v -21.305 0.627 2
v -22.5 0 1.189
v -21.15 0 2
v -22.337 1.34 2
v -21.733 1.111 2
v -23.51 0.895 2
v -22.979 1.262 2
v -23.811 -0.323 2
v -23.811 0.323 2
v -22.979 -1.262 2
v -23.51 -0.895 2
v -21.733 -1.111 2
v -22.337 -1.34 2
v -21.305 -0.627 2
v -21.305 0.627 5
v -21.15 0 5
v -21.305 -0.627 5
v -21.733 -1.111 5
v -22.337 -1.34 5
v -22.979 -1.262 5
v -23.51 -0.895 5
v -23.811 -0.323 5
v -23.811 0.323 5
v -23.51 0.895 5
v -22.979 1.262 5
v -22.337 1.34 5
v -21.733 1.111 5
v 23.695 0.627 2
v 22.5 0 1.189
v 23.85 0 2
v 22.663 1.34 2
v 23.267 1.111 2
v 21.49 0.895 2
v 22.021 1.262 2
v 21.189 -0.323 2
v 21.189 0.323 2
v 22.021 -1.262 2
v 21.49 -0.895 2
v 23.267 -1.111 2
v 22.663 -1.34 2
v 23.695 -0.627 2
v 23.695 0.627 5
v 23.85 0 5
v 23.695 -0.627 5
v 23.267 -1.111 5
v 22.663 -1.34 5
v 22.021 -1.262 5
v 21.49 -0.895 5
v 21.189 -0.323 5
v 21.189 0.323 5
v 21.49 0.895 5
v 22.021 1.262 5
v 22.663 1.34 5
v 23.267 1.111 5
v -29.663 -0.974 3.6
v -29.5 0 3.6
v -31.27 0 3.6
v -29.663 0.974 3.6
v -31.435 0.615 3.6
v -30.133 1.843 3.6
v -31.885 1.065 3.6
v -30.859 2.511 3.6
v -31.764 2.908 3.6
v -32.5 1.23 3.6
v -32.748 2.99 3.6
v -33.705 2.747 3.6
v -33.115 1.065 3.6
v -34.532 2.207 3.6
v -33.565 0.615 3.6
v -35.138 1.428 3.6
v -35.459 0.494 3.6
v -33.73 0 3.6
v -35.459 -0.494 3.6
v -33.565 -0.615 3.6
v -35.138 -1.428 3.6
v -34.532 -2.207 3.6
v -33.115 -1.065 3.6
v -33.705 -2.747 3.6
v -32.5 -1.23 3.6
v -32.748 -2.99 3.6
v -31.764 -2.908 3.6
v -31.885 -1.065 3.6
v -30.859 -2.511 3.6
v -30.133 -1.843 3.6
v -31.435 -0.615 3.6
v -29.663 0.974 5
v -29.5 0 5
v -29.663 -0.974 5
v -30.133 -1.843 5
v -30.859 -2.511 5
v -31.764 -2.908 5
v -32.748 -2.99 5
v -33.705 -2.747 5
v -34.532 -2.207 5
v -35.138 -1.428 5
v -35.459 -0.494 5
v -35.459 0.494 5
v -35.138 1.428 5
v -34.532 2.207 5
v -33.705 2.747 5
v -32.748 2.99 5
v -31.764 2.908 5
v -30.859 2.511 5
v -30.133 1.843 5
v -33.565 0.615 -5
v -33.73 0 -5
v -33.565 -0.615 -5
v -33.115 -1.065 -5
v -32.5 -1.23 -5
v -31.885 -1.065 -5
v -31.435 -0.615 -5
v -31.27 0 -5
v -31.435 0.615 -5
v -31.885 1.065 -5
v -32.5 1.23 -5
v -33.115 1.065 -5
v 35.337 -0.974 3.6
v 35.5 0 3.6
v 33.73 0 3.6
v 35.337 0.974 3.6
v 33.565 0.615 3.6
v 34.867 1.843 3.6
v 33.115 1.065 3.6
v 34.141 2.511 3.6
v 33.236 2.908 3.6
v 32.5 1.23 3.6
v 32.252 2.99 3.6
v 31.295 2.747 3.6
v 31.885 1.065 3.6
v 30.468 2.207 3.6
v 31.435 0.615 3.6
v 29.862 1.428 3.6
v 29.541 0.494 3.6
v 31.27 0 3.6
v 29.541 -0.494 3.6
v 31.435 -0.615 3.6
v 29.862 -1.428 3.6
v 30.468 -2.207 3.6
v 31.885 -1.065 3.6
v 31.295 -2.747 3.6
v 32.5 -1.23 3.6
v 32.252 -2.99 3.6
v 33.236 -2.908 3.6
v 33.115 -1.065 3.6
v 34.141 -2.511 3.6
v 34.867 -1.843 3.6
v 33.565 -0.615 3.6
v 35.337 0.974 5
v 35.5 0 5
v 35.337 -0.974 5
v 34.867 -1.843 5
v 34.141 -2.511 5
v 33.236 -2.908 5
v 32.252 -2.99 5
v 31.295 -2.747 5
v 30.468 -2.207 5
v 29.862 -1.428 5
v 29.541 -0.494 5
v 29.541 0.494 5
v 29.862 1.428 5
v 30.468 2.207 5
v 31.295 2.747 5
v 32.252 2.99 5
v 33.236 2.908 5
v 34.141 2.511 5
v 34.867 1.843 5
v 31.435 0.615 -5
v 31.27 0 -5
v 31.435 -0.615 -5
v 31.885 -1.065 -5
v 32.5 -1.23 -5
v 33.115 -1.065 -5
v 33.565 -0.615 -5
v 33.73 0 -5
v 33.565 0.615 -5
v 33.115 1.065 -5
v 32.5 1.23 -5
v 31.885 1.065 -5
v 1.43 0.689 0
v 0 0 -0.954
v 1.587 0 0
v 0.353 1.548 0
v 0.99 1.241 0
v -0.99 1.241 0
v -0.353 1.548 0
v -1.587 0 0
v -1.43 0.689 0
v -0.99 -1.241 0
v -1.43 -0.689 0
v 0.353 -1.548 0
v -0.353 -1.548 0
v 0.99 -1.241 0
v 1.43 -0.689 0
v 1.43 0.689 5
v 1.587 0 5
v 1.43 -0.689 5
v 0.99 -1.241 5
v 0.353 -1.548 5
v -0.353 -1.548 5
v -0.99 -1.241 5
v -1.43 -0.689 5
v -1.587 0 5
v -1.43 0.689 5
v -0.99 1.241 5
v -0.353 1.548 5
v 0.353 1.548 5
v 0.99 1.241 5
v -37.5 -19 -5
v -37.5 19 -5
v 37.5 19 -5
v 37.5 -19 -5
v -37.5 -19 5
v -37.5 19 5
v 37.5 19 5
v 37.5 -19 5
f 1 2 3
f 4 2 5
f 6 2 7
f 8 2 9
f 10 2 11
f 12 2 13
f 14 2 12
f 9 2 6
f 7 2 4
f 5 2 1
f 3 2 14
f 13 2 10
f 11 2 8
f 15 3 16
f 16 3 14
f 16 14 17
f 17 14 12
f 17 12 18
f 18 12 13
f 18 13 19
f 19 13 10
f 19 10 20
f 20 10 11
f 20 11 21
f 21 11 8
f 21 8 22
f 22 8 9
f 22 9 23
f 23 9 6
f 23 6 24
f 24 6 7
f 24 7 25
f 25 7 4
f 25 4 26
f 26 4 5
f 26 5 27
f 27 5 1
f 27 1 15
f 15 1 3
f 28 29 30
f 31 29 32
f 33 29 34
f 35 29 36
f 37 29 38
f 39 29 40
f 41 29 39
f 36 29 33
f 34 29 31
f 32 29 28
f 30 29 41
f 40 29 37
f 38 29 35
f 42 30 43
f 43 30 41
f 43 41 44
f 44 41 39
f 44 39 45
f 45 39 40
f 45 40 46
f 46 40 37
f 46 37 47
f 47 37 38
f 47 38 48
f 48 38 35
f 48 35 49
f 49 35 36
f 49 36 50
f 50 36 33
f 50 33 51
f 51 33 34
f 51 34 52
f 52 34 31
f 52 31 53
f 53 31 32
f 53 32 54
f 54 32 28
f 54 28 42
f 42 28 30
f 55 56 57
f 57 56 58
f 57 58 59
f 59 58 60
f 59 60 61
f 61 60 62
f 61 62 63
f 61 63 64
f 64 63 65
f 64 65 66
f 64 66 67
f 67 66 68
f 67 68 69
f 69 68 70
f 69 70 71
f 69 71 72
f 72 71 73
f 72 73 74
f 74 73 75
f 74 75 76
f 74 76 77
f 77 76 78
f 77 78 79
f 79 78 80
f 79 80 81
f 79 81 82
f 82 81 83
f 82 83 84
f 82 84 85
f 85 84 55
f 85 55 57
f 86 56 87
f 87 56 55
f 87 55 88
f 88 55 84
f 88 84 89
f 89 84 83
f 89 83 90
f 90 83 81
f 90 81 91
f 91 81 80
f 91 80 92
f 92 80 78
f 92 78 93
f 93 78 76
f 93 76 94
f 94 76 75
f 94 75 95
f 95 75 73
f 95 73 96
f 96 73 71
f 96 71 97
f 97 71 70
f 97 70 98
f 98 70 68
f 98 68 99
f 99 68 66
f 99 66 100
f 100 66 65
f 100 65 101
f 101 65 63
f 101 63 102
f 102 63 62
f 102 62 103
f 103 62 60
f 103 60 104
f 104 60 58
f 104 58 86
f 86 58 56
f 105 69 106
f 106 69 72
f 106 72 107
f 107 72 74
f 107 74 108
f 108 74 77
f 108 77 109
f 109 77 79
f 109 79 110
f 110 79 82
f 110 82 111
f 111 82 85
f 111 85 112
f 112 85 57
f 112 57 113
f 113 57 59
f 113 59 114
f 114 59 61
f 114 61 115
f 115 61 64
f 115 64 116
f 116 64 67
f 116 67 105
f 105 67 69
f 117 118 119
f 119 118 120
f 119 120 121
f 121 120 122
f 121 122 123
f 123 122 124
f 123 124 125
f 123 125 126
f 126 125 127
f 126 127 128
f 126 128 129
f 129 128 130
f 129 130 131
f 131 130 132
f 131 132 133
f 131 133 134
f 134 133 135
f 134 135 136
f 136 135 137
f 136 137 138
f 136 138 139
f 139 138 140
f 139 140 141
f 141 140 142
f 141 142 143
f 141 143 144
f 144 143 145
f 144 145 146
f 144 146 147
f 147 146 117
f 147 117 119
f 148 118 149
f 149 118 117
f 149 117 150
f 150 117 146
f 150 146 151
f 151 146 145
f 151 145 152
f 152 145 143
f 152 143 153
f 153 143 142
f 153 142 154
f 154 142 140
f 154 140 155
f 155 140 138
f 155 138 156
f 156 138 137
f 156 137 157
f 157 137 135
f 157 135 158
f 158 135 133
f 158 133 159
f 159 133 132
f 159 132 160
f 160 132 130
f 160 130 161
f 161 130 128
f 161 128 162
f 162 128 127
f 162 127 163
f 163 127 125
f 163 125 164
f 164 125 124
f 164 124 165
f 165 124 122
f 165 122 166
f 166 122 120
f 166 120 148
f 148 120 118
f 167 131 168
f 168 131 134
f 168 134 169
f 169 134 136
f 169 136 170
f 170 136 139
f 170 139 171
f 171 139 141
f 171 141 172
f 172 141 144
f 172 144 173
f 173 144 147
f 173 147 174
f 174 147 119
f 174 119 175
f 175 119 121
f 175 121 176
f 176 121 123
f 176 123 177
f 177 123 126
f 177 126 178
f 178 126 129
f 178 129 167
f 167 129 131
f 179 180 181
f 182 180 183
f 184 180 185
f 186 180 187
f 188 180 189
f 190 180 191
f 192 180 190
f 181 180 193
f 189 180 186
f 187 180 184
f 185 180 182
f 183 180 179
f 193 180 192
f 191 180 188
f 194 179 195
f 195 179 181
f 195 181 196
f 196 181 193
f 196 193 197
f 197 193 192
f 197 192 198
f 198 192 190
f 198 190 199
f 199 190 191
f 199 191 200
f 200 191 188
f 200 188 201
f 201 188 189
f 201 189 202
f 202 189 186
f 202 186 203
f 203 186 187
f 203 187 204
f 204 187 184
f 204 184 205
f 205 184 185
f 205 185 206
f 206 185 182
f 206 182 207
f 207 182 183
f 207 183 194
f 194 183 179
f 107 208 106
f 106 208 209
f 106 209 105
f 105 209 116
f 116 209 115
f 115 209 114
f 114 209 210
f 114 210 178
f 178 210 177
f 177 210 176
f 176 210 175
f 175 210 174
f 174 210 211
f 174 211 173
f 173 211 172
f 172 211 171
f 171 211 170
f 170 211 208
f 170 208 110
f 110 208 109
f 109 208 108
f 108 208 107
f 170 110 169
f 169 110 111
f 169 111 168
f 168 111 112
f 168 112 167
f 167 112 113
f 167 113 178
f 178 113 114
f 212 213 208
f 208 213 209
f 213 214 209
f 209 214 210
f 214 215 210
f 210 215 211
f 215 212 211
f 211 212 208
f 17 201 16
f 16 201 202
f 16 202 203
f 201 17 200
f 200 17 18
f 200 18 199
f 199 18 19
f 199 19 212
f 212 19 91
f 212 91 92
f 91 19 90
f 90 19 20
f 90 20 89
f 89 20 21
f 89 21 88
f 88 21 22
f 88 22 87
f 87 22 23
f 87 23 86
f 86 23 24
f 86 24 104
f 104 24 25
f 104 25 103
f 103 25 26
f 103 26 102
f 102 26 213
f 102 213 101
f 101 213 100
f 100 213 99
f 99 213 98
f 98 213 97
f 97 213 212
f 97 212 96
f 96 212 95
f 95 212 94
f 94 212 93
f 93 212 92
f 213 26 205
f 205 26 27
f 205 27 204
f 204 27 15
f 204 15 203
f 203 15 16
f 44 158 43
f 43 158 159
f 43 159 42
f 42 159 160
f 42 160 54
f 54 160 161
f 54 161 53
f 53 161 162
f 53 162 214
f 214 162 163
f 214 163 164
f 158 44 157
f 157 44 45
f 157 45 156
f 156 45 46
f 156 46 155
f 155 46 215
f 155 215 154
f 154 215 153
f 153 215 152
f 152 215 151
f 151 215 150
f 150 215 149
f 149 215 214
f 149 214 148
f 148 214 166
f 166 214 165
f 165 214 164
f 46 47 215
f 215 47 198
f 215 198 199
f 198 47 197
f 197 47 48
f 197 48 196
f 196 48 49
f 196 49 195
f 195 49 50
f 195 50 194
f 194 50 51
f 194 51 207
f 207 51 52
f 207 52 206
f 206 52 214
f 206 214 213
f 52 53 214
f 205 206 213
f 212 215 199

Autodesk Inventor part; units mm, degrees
ref_plane "YZ Plane" through (0, 0, 0) normal (1, 0, 0) x (0, 1, 0)
ref_plane "XZ Plane" through (0, 0, 0) normal (0, 1, 0) x (-1, 0, 0)
ref_plane "XY Plane" through (0, 0, 0) normal (0, 0, 1) x (1, 0, 0)
sketch "Sketch1" plane through (0, 0, 0) normal (0, 0, 1) x (1, 0, 0)
  line L0 (-37.5, 19) -> (37.5, 19)
  line L1 (37.5, 19) -> (37.5, -19)
  line L2 (37.5, -19) -> (-37.5, -19)
  line L3 (-37.5, -19) -> (-37.5, 19)
  line L4 (-37.5, 19) -> (37.5, -19) construction
  line L5 (37.5, 19) -> (-37.5, -19) construction
  point P0 (0, 0)
  dimension "d2" = 38
  dimension "d3" = 75
extrude "Extrusion1" add sketch "Sketch1" along normal mid plane 10
sketch "Sketch3" plane through (0, 0, 5) normal (0, 0, 1) x (1, 0, 0)
  point P0 (0, 0)
  point P1 (0, 0)
hole "Hole2" at (0, 0, 5) direction (0, 0, -1) diameter 3.175 depth 5 tip angle 118
sketch "Sketch4" plane through (0, 0, 5) normal (0, 0, 1) x (1, 0, 0)
  line L0 (-37.5, 19) -> (-37.5, -19) projected
  circle A0 centre (0, 0) radius 1.5875 projected
  line L1 (-37.5, -19) -> (37.5, -19) projected
  line L2 (37.5, -19) -> (37.5, 19) projected
  line L3 (37.5, 19) -> (-37.5, 19) projected
  line L4 (-37.5, 19) -> (-37.5, -19) projected
  point P0 (-32.5, 0)
  point P1 (32.5, 0)
  dimension "d76" = 5
  dimension "d79" = 65
hole "Hole3" at (-32.5, 0, 5) at (32.5, 0, 5) direction (0, 0, -1) diameter 2.459 end through all counterbore diameter 6 counterbore depth 1.4 thread size "M3x0.5" class "6H" standard "ANSI Metric M Profile"
sketch "Sketch5" plane through (0, 0, 5) normal (0, 0, 1) x (1, 0, 0)
  point P0 (0, 0)
  point P1 (-22.5, 0)
  point P2 (22.5, 0)
  dimension "d95" = 22.5
  dimension "d96" = 22.5
hole "Hole4" at (-22.5, 0, 5) at (22.5, 0, 5) direction (0, 0, -1) diameter 2.7 depth 3 tip angle 118
properties part number "baseblock"
